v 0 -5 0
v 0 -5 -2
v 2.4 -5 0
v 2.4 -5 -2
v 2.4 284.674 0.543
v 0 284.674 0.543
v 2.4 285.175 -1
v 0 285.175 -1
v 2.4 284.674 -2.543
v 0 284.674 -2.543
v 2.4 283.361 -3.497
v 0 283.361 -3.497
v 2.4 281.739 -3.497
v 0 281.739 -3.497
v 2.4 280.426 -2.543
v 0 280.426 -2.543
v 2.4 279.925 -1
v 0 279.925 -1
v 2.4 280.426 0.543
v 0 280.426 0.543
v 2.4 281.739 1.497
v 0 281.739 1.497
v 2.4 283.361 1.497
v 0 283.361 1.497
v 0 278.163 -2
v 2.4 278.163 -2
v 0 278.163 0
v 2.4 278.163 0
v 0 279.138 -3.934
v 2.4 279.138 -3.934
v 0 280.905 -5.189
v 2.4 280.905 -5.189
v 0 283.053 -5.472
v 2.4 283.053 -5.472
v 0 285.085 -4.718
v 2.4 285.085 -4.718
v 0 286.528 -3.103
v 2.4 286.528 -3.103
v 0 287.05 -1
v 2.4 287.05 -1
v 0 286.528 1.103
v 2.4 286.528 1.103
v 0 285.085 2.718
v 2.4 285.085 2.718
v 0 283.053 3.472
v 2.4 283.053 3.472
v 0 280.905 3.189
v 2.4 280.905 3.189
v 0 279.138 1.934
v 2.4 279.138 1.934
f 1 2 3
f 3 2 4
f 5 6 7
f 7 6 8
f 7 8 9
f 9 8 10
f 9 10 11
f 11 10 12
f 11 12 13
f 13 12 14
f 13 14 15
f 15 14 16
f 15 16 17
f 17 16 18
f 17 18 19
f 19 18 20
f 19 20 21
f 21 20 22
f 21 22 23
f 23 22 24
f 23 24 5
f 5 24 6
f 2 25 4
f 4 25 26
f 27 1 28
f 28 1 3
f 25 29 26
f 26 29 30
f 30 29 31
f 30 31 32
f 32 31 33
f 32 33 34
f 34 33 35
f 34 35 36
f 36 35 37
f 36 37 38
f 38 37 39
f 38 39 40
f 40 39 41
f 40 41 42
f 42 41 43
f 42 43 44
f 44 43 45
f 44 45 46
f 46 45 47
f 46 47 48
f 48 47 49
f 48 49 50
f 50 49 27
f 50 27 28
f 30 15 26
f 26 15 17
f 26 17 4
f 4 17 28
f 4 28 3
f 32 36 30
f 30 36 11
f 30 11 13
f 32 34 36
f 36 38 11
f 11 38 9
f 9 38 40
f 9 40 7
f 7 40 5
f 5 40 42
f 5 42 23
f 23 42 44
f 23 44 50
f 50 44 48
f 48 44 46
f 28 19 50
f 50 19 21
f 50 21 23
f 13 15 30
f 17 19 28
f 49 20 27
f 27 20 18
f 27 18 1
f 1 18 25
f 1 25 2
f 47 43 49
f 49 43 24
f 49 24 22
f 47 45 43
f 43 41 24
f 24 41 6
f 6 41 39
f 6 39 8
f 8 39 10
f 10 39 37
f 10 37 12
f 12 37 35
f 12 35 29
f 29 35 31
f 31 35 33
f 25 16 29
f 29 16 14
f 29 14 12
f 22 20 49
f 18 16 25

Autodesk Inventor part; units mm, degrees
ref_plane "YZ Plane" through (0, 0, 0) normal (1, 0, 0) x (0, 1, 0)
ref_plane "XZ Plane" through (0, 0, 0) normal (0, 1, 0) x (-1, 0, 0)
ref_plane "XY Plane" through (0, 0, 0) normal (0, 0, 1) x (1, 0, 0)
sketch "Sketch4" plane through (0, 0, 0) normal (1, 0, 0) x (0, 1, 0)
  line L0 (0, 0) -> (280, 0)
  line L1 (280, 0) -> (280, -2)
  line L2 (280, -2) -> (0, -2)
  line L3 (0, -2) -> (0, 0)
  circle A0 centre (282.55, -1) radius 2.625
  circle A1 centre (282.55, -1) radius 4.5
  point P0 (278.1625, -2)
  point P1 (278.1625, 0)
  dimension "d10" = 280
  dimension "d11" = 2
  dimension "d12" = 5.25
  dimension "d13" = 9
extrude "Extrusion2" add sketch "Sketch4" along normal blind 2.4 contours L0 A1 L2 L3 | A1 L2 L1 A0 L0 | L0 L1 A0 L2 A1
sketch "Sketch6" plane through (0, 0, -2) normal (0, -1, 0) x (1, 0, 0)
  line L0 (0, 2) -> (0, 0) projected
  line L1 (0, 0) -> (2.4, 0)
  line L2 (2.4, 0) -> (2.4, 2)
  line L3 (2.4, 2) -> (0, 2)
  line L4 (0, 2) -> (0, 0)
extrude "Extrusion4" add sketch "Sketch6" along normal blind 5
properties part number "guide"
